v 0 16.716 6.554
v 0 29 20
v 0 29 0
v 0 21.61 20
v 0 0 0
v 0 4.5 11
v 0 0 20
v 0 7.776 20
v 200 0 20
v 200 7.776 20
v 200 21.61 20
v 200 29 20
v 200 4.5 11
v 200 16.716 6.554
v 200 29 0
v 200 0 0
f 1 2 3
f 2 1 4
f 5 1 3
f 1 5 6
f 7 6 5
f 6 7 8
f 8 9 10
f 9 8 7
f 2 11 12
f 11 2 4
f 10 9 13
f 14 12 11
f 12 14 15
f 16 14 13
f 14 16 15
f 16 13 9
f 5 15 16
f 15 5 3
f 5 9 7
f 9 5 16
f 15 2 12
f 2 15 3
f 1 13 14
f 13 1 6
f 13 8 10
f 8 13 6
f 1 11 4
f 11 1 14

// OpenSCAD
difference() {
    cube([200, 29, 20]);

    translate([-1, 4.5, 11]) {
        rotate([360-20]) {
            cube([202, 13, 16]);
        }
    }
}
